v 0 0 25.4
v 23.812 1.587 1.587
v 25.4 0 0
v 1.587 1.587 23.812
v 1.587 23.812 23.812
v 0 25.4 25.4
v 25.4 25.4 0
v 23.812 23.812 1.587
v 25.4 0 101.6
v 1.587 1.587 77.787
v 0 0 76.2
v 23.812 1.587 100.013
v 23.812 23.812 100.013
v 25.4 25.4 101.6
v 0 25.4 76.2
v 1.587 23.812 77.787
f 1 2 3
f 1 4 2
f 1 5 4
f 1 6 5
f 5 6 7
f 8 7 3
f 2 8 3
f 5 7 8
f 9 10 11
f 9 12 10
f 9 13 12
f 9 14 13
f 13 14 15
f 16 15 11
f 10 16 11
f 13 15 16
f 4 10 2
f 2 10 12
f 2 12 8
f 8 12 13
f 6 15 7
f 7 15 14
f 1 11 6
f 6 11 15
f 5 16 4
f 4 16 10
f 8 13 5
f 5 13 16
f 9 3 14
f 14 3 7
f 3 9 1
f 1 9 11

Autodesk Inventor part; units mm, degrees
ref_plane "YZ Plane" through (0, 0, 0) normal (1, 0, 0) x (0, 1, 0)
ref_plane "XZ Plane" through (0, 0, 0) normal (0, 1, 0) x (-1, 0, 0)
ref_plane "XY Plane" through (0, 0, 0) normal (0, 0, 1) x (1, 0, 0)
sketch "Sketch1" plane through (0, 0, 0) normal (0, 0, 1) x (1, 0, 0)
  line L0 (0, 0) -> (25.4, 0)
  line L1 (25.4, 0) -> (25.4, 25.4)
  line L2 (25.4, 25.4) -> (0, 25.4)
  line L3 (0, 25.4) -> (0, 0)
  dimension "d0" = 25.4
  dimension "d1" = 25.4
extrude "Extrusion1" add sketch "Sketch1" along normal blind 101.6
shell "Shell1" thickness 1.5875 removed faces 2 at (8.4667, 16.9333, 0) at (8.4667, 16.9333, 101.6)
sketch "Sketch2" plane through (0, 25.4, 0) normal (0, 1, 0) x (1, 0, 0)
  line L0 (0, -101.6) -> (25.4, -101.6) projected
  line L1 (25.4, 0) -> (0, 0) projected
  line L2 (0, 0) -> (0, -101.6) projected
  line L3 (25.4, 0) -> (0, -25.4)
  line L4 (0, -25.4) -> (0, 0)
  line L5 (0, 0) -> (25.4, 0)
  line L6 (25.4, -101.6) -> (0, -76.2)
  line L7 (0, -101.6) -> (0, -76.2)
  line L8 (0, -101.6) -> (25.4, -101.6)
  dimension "d5" = 45
  dimension "d6" = 45
extrude "Extrusion2" cut sketch "Sketch2" against normal through all
properties part number "Frame_VerticalAngle_Mid" material "Aluminum-6061"
